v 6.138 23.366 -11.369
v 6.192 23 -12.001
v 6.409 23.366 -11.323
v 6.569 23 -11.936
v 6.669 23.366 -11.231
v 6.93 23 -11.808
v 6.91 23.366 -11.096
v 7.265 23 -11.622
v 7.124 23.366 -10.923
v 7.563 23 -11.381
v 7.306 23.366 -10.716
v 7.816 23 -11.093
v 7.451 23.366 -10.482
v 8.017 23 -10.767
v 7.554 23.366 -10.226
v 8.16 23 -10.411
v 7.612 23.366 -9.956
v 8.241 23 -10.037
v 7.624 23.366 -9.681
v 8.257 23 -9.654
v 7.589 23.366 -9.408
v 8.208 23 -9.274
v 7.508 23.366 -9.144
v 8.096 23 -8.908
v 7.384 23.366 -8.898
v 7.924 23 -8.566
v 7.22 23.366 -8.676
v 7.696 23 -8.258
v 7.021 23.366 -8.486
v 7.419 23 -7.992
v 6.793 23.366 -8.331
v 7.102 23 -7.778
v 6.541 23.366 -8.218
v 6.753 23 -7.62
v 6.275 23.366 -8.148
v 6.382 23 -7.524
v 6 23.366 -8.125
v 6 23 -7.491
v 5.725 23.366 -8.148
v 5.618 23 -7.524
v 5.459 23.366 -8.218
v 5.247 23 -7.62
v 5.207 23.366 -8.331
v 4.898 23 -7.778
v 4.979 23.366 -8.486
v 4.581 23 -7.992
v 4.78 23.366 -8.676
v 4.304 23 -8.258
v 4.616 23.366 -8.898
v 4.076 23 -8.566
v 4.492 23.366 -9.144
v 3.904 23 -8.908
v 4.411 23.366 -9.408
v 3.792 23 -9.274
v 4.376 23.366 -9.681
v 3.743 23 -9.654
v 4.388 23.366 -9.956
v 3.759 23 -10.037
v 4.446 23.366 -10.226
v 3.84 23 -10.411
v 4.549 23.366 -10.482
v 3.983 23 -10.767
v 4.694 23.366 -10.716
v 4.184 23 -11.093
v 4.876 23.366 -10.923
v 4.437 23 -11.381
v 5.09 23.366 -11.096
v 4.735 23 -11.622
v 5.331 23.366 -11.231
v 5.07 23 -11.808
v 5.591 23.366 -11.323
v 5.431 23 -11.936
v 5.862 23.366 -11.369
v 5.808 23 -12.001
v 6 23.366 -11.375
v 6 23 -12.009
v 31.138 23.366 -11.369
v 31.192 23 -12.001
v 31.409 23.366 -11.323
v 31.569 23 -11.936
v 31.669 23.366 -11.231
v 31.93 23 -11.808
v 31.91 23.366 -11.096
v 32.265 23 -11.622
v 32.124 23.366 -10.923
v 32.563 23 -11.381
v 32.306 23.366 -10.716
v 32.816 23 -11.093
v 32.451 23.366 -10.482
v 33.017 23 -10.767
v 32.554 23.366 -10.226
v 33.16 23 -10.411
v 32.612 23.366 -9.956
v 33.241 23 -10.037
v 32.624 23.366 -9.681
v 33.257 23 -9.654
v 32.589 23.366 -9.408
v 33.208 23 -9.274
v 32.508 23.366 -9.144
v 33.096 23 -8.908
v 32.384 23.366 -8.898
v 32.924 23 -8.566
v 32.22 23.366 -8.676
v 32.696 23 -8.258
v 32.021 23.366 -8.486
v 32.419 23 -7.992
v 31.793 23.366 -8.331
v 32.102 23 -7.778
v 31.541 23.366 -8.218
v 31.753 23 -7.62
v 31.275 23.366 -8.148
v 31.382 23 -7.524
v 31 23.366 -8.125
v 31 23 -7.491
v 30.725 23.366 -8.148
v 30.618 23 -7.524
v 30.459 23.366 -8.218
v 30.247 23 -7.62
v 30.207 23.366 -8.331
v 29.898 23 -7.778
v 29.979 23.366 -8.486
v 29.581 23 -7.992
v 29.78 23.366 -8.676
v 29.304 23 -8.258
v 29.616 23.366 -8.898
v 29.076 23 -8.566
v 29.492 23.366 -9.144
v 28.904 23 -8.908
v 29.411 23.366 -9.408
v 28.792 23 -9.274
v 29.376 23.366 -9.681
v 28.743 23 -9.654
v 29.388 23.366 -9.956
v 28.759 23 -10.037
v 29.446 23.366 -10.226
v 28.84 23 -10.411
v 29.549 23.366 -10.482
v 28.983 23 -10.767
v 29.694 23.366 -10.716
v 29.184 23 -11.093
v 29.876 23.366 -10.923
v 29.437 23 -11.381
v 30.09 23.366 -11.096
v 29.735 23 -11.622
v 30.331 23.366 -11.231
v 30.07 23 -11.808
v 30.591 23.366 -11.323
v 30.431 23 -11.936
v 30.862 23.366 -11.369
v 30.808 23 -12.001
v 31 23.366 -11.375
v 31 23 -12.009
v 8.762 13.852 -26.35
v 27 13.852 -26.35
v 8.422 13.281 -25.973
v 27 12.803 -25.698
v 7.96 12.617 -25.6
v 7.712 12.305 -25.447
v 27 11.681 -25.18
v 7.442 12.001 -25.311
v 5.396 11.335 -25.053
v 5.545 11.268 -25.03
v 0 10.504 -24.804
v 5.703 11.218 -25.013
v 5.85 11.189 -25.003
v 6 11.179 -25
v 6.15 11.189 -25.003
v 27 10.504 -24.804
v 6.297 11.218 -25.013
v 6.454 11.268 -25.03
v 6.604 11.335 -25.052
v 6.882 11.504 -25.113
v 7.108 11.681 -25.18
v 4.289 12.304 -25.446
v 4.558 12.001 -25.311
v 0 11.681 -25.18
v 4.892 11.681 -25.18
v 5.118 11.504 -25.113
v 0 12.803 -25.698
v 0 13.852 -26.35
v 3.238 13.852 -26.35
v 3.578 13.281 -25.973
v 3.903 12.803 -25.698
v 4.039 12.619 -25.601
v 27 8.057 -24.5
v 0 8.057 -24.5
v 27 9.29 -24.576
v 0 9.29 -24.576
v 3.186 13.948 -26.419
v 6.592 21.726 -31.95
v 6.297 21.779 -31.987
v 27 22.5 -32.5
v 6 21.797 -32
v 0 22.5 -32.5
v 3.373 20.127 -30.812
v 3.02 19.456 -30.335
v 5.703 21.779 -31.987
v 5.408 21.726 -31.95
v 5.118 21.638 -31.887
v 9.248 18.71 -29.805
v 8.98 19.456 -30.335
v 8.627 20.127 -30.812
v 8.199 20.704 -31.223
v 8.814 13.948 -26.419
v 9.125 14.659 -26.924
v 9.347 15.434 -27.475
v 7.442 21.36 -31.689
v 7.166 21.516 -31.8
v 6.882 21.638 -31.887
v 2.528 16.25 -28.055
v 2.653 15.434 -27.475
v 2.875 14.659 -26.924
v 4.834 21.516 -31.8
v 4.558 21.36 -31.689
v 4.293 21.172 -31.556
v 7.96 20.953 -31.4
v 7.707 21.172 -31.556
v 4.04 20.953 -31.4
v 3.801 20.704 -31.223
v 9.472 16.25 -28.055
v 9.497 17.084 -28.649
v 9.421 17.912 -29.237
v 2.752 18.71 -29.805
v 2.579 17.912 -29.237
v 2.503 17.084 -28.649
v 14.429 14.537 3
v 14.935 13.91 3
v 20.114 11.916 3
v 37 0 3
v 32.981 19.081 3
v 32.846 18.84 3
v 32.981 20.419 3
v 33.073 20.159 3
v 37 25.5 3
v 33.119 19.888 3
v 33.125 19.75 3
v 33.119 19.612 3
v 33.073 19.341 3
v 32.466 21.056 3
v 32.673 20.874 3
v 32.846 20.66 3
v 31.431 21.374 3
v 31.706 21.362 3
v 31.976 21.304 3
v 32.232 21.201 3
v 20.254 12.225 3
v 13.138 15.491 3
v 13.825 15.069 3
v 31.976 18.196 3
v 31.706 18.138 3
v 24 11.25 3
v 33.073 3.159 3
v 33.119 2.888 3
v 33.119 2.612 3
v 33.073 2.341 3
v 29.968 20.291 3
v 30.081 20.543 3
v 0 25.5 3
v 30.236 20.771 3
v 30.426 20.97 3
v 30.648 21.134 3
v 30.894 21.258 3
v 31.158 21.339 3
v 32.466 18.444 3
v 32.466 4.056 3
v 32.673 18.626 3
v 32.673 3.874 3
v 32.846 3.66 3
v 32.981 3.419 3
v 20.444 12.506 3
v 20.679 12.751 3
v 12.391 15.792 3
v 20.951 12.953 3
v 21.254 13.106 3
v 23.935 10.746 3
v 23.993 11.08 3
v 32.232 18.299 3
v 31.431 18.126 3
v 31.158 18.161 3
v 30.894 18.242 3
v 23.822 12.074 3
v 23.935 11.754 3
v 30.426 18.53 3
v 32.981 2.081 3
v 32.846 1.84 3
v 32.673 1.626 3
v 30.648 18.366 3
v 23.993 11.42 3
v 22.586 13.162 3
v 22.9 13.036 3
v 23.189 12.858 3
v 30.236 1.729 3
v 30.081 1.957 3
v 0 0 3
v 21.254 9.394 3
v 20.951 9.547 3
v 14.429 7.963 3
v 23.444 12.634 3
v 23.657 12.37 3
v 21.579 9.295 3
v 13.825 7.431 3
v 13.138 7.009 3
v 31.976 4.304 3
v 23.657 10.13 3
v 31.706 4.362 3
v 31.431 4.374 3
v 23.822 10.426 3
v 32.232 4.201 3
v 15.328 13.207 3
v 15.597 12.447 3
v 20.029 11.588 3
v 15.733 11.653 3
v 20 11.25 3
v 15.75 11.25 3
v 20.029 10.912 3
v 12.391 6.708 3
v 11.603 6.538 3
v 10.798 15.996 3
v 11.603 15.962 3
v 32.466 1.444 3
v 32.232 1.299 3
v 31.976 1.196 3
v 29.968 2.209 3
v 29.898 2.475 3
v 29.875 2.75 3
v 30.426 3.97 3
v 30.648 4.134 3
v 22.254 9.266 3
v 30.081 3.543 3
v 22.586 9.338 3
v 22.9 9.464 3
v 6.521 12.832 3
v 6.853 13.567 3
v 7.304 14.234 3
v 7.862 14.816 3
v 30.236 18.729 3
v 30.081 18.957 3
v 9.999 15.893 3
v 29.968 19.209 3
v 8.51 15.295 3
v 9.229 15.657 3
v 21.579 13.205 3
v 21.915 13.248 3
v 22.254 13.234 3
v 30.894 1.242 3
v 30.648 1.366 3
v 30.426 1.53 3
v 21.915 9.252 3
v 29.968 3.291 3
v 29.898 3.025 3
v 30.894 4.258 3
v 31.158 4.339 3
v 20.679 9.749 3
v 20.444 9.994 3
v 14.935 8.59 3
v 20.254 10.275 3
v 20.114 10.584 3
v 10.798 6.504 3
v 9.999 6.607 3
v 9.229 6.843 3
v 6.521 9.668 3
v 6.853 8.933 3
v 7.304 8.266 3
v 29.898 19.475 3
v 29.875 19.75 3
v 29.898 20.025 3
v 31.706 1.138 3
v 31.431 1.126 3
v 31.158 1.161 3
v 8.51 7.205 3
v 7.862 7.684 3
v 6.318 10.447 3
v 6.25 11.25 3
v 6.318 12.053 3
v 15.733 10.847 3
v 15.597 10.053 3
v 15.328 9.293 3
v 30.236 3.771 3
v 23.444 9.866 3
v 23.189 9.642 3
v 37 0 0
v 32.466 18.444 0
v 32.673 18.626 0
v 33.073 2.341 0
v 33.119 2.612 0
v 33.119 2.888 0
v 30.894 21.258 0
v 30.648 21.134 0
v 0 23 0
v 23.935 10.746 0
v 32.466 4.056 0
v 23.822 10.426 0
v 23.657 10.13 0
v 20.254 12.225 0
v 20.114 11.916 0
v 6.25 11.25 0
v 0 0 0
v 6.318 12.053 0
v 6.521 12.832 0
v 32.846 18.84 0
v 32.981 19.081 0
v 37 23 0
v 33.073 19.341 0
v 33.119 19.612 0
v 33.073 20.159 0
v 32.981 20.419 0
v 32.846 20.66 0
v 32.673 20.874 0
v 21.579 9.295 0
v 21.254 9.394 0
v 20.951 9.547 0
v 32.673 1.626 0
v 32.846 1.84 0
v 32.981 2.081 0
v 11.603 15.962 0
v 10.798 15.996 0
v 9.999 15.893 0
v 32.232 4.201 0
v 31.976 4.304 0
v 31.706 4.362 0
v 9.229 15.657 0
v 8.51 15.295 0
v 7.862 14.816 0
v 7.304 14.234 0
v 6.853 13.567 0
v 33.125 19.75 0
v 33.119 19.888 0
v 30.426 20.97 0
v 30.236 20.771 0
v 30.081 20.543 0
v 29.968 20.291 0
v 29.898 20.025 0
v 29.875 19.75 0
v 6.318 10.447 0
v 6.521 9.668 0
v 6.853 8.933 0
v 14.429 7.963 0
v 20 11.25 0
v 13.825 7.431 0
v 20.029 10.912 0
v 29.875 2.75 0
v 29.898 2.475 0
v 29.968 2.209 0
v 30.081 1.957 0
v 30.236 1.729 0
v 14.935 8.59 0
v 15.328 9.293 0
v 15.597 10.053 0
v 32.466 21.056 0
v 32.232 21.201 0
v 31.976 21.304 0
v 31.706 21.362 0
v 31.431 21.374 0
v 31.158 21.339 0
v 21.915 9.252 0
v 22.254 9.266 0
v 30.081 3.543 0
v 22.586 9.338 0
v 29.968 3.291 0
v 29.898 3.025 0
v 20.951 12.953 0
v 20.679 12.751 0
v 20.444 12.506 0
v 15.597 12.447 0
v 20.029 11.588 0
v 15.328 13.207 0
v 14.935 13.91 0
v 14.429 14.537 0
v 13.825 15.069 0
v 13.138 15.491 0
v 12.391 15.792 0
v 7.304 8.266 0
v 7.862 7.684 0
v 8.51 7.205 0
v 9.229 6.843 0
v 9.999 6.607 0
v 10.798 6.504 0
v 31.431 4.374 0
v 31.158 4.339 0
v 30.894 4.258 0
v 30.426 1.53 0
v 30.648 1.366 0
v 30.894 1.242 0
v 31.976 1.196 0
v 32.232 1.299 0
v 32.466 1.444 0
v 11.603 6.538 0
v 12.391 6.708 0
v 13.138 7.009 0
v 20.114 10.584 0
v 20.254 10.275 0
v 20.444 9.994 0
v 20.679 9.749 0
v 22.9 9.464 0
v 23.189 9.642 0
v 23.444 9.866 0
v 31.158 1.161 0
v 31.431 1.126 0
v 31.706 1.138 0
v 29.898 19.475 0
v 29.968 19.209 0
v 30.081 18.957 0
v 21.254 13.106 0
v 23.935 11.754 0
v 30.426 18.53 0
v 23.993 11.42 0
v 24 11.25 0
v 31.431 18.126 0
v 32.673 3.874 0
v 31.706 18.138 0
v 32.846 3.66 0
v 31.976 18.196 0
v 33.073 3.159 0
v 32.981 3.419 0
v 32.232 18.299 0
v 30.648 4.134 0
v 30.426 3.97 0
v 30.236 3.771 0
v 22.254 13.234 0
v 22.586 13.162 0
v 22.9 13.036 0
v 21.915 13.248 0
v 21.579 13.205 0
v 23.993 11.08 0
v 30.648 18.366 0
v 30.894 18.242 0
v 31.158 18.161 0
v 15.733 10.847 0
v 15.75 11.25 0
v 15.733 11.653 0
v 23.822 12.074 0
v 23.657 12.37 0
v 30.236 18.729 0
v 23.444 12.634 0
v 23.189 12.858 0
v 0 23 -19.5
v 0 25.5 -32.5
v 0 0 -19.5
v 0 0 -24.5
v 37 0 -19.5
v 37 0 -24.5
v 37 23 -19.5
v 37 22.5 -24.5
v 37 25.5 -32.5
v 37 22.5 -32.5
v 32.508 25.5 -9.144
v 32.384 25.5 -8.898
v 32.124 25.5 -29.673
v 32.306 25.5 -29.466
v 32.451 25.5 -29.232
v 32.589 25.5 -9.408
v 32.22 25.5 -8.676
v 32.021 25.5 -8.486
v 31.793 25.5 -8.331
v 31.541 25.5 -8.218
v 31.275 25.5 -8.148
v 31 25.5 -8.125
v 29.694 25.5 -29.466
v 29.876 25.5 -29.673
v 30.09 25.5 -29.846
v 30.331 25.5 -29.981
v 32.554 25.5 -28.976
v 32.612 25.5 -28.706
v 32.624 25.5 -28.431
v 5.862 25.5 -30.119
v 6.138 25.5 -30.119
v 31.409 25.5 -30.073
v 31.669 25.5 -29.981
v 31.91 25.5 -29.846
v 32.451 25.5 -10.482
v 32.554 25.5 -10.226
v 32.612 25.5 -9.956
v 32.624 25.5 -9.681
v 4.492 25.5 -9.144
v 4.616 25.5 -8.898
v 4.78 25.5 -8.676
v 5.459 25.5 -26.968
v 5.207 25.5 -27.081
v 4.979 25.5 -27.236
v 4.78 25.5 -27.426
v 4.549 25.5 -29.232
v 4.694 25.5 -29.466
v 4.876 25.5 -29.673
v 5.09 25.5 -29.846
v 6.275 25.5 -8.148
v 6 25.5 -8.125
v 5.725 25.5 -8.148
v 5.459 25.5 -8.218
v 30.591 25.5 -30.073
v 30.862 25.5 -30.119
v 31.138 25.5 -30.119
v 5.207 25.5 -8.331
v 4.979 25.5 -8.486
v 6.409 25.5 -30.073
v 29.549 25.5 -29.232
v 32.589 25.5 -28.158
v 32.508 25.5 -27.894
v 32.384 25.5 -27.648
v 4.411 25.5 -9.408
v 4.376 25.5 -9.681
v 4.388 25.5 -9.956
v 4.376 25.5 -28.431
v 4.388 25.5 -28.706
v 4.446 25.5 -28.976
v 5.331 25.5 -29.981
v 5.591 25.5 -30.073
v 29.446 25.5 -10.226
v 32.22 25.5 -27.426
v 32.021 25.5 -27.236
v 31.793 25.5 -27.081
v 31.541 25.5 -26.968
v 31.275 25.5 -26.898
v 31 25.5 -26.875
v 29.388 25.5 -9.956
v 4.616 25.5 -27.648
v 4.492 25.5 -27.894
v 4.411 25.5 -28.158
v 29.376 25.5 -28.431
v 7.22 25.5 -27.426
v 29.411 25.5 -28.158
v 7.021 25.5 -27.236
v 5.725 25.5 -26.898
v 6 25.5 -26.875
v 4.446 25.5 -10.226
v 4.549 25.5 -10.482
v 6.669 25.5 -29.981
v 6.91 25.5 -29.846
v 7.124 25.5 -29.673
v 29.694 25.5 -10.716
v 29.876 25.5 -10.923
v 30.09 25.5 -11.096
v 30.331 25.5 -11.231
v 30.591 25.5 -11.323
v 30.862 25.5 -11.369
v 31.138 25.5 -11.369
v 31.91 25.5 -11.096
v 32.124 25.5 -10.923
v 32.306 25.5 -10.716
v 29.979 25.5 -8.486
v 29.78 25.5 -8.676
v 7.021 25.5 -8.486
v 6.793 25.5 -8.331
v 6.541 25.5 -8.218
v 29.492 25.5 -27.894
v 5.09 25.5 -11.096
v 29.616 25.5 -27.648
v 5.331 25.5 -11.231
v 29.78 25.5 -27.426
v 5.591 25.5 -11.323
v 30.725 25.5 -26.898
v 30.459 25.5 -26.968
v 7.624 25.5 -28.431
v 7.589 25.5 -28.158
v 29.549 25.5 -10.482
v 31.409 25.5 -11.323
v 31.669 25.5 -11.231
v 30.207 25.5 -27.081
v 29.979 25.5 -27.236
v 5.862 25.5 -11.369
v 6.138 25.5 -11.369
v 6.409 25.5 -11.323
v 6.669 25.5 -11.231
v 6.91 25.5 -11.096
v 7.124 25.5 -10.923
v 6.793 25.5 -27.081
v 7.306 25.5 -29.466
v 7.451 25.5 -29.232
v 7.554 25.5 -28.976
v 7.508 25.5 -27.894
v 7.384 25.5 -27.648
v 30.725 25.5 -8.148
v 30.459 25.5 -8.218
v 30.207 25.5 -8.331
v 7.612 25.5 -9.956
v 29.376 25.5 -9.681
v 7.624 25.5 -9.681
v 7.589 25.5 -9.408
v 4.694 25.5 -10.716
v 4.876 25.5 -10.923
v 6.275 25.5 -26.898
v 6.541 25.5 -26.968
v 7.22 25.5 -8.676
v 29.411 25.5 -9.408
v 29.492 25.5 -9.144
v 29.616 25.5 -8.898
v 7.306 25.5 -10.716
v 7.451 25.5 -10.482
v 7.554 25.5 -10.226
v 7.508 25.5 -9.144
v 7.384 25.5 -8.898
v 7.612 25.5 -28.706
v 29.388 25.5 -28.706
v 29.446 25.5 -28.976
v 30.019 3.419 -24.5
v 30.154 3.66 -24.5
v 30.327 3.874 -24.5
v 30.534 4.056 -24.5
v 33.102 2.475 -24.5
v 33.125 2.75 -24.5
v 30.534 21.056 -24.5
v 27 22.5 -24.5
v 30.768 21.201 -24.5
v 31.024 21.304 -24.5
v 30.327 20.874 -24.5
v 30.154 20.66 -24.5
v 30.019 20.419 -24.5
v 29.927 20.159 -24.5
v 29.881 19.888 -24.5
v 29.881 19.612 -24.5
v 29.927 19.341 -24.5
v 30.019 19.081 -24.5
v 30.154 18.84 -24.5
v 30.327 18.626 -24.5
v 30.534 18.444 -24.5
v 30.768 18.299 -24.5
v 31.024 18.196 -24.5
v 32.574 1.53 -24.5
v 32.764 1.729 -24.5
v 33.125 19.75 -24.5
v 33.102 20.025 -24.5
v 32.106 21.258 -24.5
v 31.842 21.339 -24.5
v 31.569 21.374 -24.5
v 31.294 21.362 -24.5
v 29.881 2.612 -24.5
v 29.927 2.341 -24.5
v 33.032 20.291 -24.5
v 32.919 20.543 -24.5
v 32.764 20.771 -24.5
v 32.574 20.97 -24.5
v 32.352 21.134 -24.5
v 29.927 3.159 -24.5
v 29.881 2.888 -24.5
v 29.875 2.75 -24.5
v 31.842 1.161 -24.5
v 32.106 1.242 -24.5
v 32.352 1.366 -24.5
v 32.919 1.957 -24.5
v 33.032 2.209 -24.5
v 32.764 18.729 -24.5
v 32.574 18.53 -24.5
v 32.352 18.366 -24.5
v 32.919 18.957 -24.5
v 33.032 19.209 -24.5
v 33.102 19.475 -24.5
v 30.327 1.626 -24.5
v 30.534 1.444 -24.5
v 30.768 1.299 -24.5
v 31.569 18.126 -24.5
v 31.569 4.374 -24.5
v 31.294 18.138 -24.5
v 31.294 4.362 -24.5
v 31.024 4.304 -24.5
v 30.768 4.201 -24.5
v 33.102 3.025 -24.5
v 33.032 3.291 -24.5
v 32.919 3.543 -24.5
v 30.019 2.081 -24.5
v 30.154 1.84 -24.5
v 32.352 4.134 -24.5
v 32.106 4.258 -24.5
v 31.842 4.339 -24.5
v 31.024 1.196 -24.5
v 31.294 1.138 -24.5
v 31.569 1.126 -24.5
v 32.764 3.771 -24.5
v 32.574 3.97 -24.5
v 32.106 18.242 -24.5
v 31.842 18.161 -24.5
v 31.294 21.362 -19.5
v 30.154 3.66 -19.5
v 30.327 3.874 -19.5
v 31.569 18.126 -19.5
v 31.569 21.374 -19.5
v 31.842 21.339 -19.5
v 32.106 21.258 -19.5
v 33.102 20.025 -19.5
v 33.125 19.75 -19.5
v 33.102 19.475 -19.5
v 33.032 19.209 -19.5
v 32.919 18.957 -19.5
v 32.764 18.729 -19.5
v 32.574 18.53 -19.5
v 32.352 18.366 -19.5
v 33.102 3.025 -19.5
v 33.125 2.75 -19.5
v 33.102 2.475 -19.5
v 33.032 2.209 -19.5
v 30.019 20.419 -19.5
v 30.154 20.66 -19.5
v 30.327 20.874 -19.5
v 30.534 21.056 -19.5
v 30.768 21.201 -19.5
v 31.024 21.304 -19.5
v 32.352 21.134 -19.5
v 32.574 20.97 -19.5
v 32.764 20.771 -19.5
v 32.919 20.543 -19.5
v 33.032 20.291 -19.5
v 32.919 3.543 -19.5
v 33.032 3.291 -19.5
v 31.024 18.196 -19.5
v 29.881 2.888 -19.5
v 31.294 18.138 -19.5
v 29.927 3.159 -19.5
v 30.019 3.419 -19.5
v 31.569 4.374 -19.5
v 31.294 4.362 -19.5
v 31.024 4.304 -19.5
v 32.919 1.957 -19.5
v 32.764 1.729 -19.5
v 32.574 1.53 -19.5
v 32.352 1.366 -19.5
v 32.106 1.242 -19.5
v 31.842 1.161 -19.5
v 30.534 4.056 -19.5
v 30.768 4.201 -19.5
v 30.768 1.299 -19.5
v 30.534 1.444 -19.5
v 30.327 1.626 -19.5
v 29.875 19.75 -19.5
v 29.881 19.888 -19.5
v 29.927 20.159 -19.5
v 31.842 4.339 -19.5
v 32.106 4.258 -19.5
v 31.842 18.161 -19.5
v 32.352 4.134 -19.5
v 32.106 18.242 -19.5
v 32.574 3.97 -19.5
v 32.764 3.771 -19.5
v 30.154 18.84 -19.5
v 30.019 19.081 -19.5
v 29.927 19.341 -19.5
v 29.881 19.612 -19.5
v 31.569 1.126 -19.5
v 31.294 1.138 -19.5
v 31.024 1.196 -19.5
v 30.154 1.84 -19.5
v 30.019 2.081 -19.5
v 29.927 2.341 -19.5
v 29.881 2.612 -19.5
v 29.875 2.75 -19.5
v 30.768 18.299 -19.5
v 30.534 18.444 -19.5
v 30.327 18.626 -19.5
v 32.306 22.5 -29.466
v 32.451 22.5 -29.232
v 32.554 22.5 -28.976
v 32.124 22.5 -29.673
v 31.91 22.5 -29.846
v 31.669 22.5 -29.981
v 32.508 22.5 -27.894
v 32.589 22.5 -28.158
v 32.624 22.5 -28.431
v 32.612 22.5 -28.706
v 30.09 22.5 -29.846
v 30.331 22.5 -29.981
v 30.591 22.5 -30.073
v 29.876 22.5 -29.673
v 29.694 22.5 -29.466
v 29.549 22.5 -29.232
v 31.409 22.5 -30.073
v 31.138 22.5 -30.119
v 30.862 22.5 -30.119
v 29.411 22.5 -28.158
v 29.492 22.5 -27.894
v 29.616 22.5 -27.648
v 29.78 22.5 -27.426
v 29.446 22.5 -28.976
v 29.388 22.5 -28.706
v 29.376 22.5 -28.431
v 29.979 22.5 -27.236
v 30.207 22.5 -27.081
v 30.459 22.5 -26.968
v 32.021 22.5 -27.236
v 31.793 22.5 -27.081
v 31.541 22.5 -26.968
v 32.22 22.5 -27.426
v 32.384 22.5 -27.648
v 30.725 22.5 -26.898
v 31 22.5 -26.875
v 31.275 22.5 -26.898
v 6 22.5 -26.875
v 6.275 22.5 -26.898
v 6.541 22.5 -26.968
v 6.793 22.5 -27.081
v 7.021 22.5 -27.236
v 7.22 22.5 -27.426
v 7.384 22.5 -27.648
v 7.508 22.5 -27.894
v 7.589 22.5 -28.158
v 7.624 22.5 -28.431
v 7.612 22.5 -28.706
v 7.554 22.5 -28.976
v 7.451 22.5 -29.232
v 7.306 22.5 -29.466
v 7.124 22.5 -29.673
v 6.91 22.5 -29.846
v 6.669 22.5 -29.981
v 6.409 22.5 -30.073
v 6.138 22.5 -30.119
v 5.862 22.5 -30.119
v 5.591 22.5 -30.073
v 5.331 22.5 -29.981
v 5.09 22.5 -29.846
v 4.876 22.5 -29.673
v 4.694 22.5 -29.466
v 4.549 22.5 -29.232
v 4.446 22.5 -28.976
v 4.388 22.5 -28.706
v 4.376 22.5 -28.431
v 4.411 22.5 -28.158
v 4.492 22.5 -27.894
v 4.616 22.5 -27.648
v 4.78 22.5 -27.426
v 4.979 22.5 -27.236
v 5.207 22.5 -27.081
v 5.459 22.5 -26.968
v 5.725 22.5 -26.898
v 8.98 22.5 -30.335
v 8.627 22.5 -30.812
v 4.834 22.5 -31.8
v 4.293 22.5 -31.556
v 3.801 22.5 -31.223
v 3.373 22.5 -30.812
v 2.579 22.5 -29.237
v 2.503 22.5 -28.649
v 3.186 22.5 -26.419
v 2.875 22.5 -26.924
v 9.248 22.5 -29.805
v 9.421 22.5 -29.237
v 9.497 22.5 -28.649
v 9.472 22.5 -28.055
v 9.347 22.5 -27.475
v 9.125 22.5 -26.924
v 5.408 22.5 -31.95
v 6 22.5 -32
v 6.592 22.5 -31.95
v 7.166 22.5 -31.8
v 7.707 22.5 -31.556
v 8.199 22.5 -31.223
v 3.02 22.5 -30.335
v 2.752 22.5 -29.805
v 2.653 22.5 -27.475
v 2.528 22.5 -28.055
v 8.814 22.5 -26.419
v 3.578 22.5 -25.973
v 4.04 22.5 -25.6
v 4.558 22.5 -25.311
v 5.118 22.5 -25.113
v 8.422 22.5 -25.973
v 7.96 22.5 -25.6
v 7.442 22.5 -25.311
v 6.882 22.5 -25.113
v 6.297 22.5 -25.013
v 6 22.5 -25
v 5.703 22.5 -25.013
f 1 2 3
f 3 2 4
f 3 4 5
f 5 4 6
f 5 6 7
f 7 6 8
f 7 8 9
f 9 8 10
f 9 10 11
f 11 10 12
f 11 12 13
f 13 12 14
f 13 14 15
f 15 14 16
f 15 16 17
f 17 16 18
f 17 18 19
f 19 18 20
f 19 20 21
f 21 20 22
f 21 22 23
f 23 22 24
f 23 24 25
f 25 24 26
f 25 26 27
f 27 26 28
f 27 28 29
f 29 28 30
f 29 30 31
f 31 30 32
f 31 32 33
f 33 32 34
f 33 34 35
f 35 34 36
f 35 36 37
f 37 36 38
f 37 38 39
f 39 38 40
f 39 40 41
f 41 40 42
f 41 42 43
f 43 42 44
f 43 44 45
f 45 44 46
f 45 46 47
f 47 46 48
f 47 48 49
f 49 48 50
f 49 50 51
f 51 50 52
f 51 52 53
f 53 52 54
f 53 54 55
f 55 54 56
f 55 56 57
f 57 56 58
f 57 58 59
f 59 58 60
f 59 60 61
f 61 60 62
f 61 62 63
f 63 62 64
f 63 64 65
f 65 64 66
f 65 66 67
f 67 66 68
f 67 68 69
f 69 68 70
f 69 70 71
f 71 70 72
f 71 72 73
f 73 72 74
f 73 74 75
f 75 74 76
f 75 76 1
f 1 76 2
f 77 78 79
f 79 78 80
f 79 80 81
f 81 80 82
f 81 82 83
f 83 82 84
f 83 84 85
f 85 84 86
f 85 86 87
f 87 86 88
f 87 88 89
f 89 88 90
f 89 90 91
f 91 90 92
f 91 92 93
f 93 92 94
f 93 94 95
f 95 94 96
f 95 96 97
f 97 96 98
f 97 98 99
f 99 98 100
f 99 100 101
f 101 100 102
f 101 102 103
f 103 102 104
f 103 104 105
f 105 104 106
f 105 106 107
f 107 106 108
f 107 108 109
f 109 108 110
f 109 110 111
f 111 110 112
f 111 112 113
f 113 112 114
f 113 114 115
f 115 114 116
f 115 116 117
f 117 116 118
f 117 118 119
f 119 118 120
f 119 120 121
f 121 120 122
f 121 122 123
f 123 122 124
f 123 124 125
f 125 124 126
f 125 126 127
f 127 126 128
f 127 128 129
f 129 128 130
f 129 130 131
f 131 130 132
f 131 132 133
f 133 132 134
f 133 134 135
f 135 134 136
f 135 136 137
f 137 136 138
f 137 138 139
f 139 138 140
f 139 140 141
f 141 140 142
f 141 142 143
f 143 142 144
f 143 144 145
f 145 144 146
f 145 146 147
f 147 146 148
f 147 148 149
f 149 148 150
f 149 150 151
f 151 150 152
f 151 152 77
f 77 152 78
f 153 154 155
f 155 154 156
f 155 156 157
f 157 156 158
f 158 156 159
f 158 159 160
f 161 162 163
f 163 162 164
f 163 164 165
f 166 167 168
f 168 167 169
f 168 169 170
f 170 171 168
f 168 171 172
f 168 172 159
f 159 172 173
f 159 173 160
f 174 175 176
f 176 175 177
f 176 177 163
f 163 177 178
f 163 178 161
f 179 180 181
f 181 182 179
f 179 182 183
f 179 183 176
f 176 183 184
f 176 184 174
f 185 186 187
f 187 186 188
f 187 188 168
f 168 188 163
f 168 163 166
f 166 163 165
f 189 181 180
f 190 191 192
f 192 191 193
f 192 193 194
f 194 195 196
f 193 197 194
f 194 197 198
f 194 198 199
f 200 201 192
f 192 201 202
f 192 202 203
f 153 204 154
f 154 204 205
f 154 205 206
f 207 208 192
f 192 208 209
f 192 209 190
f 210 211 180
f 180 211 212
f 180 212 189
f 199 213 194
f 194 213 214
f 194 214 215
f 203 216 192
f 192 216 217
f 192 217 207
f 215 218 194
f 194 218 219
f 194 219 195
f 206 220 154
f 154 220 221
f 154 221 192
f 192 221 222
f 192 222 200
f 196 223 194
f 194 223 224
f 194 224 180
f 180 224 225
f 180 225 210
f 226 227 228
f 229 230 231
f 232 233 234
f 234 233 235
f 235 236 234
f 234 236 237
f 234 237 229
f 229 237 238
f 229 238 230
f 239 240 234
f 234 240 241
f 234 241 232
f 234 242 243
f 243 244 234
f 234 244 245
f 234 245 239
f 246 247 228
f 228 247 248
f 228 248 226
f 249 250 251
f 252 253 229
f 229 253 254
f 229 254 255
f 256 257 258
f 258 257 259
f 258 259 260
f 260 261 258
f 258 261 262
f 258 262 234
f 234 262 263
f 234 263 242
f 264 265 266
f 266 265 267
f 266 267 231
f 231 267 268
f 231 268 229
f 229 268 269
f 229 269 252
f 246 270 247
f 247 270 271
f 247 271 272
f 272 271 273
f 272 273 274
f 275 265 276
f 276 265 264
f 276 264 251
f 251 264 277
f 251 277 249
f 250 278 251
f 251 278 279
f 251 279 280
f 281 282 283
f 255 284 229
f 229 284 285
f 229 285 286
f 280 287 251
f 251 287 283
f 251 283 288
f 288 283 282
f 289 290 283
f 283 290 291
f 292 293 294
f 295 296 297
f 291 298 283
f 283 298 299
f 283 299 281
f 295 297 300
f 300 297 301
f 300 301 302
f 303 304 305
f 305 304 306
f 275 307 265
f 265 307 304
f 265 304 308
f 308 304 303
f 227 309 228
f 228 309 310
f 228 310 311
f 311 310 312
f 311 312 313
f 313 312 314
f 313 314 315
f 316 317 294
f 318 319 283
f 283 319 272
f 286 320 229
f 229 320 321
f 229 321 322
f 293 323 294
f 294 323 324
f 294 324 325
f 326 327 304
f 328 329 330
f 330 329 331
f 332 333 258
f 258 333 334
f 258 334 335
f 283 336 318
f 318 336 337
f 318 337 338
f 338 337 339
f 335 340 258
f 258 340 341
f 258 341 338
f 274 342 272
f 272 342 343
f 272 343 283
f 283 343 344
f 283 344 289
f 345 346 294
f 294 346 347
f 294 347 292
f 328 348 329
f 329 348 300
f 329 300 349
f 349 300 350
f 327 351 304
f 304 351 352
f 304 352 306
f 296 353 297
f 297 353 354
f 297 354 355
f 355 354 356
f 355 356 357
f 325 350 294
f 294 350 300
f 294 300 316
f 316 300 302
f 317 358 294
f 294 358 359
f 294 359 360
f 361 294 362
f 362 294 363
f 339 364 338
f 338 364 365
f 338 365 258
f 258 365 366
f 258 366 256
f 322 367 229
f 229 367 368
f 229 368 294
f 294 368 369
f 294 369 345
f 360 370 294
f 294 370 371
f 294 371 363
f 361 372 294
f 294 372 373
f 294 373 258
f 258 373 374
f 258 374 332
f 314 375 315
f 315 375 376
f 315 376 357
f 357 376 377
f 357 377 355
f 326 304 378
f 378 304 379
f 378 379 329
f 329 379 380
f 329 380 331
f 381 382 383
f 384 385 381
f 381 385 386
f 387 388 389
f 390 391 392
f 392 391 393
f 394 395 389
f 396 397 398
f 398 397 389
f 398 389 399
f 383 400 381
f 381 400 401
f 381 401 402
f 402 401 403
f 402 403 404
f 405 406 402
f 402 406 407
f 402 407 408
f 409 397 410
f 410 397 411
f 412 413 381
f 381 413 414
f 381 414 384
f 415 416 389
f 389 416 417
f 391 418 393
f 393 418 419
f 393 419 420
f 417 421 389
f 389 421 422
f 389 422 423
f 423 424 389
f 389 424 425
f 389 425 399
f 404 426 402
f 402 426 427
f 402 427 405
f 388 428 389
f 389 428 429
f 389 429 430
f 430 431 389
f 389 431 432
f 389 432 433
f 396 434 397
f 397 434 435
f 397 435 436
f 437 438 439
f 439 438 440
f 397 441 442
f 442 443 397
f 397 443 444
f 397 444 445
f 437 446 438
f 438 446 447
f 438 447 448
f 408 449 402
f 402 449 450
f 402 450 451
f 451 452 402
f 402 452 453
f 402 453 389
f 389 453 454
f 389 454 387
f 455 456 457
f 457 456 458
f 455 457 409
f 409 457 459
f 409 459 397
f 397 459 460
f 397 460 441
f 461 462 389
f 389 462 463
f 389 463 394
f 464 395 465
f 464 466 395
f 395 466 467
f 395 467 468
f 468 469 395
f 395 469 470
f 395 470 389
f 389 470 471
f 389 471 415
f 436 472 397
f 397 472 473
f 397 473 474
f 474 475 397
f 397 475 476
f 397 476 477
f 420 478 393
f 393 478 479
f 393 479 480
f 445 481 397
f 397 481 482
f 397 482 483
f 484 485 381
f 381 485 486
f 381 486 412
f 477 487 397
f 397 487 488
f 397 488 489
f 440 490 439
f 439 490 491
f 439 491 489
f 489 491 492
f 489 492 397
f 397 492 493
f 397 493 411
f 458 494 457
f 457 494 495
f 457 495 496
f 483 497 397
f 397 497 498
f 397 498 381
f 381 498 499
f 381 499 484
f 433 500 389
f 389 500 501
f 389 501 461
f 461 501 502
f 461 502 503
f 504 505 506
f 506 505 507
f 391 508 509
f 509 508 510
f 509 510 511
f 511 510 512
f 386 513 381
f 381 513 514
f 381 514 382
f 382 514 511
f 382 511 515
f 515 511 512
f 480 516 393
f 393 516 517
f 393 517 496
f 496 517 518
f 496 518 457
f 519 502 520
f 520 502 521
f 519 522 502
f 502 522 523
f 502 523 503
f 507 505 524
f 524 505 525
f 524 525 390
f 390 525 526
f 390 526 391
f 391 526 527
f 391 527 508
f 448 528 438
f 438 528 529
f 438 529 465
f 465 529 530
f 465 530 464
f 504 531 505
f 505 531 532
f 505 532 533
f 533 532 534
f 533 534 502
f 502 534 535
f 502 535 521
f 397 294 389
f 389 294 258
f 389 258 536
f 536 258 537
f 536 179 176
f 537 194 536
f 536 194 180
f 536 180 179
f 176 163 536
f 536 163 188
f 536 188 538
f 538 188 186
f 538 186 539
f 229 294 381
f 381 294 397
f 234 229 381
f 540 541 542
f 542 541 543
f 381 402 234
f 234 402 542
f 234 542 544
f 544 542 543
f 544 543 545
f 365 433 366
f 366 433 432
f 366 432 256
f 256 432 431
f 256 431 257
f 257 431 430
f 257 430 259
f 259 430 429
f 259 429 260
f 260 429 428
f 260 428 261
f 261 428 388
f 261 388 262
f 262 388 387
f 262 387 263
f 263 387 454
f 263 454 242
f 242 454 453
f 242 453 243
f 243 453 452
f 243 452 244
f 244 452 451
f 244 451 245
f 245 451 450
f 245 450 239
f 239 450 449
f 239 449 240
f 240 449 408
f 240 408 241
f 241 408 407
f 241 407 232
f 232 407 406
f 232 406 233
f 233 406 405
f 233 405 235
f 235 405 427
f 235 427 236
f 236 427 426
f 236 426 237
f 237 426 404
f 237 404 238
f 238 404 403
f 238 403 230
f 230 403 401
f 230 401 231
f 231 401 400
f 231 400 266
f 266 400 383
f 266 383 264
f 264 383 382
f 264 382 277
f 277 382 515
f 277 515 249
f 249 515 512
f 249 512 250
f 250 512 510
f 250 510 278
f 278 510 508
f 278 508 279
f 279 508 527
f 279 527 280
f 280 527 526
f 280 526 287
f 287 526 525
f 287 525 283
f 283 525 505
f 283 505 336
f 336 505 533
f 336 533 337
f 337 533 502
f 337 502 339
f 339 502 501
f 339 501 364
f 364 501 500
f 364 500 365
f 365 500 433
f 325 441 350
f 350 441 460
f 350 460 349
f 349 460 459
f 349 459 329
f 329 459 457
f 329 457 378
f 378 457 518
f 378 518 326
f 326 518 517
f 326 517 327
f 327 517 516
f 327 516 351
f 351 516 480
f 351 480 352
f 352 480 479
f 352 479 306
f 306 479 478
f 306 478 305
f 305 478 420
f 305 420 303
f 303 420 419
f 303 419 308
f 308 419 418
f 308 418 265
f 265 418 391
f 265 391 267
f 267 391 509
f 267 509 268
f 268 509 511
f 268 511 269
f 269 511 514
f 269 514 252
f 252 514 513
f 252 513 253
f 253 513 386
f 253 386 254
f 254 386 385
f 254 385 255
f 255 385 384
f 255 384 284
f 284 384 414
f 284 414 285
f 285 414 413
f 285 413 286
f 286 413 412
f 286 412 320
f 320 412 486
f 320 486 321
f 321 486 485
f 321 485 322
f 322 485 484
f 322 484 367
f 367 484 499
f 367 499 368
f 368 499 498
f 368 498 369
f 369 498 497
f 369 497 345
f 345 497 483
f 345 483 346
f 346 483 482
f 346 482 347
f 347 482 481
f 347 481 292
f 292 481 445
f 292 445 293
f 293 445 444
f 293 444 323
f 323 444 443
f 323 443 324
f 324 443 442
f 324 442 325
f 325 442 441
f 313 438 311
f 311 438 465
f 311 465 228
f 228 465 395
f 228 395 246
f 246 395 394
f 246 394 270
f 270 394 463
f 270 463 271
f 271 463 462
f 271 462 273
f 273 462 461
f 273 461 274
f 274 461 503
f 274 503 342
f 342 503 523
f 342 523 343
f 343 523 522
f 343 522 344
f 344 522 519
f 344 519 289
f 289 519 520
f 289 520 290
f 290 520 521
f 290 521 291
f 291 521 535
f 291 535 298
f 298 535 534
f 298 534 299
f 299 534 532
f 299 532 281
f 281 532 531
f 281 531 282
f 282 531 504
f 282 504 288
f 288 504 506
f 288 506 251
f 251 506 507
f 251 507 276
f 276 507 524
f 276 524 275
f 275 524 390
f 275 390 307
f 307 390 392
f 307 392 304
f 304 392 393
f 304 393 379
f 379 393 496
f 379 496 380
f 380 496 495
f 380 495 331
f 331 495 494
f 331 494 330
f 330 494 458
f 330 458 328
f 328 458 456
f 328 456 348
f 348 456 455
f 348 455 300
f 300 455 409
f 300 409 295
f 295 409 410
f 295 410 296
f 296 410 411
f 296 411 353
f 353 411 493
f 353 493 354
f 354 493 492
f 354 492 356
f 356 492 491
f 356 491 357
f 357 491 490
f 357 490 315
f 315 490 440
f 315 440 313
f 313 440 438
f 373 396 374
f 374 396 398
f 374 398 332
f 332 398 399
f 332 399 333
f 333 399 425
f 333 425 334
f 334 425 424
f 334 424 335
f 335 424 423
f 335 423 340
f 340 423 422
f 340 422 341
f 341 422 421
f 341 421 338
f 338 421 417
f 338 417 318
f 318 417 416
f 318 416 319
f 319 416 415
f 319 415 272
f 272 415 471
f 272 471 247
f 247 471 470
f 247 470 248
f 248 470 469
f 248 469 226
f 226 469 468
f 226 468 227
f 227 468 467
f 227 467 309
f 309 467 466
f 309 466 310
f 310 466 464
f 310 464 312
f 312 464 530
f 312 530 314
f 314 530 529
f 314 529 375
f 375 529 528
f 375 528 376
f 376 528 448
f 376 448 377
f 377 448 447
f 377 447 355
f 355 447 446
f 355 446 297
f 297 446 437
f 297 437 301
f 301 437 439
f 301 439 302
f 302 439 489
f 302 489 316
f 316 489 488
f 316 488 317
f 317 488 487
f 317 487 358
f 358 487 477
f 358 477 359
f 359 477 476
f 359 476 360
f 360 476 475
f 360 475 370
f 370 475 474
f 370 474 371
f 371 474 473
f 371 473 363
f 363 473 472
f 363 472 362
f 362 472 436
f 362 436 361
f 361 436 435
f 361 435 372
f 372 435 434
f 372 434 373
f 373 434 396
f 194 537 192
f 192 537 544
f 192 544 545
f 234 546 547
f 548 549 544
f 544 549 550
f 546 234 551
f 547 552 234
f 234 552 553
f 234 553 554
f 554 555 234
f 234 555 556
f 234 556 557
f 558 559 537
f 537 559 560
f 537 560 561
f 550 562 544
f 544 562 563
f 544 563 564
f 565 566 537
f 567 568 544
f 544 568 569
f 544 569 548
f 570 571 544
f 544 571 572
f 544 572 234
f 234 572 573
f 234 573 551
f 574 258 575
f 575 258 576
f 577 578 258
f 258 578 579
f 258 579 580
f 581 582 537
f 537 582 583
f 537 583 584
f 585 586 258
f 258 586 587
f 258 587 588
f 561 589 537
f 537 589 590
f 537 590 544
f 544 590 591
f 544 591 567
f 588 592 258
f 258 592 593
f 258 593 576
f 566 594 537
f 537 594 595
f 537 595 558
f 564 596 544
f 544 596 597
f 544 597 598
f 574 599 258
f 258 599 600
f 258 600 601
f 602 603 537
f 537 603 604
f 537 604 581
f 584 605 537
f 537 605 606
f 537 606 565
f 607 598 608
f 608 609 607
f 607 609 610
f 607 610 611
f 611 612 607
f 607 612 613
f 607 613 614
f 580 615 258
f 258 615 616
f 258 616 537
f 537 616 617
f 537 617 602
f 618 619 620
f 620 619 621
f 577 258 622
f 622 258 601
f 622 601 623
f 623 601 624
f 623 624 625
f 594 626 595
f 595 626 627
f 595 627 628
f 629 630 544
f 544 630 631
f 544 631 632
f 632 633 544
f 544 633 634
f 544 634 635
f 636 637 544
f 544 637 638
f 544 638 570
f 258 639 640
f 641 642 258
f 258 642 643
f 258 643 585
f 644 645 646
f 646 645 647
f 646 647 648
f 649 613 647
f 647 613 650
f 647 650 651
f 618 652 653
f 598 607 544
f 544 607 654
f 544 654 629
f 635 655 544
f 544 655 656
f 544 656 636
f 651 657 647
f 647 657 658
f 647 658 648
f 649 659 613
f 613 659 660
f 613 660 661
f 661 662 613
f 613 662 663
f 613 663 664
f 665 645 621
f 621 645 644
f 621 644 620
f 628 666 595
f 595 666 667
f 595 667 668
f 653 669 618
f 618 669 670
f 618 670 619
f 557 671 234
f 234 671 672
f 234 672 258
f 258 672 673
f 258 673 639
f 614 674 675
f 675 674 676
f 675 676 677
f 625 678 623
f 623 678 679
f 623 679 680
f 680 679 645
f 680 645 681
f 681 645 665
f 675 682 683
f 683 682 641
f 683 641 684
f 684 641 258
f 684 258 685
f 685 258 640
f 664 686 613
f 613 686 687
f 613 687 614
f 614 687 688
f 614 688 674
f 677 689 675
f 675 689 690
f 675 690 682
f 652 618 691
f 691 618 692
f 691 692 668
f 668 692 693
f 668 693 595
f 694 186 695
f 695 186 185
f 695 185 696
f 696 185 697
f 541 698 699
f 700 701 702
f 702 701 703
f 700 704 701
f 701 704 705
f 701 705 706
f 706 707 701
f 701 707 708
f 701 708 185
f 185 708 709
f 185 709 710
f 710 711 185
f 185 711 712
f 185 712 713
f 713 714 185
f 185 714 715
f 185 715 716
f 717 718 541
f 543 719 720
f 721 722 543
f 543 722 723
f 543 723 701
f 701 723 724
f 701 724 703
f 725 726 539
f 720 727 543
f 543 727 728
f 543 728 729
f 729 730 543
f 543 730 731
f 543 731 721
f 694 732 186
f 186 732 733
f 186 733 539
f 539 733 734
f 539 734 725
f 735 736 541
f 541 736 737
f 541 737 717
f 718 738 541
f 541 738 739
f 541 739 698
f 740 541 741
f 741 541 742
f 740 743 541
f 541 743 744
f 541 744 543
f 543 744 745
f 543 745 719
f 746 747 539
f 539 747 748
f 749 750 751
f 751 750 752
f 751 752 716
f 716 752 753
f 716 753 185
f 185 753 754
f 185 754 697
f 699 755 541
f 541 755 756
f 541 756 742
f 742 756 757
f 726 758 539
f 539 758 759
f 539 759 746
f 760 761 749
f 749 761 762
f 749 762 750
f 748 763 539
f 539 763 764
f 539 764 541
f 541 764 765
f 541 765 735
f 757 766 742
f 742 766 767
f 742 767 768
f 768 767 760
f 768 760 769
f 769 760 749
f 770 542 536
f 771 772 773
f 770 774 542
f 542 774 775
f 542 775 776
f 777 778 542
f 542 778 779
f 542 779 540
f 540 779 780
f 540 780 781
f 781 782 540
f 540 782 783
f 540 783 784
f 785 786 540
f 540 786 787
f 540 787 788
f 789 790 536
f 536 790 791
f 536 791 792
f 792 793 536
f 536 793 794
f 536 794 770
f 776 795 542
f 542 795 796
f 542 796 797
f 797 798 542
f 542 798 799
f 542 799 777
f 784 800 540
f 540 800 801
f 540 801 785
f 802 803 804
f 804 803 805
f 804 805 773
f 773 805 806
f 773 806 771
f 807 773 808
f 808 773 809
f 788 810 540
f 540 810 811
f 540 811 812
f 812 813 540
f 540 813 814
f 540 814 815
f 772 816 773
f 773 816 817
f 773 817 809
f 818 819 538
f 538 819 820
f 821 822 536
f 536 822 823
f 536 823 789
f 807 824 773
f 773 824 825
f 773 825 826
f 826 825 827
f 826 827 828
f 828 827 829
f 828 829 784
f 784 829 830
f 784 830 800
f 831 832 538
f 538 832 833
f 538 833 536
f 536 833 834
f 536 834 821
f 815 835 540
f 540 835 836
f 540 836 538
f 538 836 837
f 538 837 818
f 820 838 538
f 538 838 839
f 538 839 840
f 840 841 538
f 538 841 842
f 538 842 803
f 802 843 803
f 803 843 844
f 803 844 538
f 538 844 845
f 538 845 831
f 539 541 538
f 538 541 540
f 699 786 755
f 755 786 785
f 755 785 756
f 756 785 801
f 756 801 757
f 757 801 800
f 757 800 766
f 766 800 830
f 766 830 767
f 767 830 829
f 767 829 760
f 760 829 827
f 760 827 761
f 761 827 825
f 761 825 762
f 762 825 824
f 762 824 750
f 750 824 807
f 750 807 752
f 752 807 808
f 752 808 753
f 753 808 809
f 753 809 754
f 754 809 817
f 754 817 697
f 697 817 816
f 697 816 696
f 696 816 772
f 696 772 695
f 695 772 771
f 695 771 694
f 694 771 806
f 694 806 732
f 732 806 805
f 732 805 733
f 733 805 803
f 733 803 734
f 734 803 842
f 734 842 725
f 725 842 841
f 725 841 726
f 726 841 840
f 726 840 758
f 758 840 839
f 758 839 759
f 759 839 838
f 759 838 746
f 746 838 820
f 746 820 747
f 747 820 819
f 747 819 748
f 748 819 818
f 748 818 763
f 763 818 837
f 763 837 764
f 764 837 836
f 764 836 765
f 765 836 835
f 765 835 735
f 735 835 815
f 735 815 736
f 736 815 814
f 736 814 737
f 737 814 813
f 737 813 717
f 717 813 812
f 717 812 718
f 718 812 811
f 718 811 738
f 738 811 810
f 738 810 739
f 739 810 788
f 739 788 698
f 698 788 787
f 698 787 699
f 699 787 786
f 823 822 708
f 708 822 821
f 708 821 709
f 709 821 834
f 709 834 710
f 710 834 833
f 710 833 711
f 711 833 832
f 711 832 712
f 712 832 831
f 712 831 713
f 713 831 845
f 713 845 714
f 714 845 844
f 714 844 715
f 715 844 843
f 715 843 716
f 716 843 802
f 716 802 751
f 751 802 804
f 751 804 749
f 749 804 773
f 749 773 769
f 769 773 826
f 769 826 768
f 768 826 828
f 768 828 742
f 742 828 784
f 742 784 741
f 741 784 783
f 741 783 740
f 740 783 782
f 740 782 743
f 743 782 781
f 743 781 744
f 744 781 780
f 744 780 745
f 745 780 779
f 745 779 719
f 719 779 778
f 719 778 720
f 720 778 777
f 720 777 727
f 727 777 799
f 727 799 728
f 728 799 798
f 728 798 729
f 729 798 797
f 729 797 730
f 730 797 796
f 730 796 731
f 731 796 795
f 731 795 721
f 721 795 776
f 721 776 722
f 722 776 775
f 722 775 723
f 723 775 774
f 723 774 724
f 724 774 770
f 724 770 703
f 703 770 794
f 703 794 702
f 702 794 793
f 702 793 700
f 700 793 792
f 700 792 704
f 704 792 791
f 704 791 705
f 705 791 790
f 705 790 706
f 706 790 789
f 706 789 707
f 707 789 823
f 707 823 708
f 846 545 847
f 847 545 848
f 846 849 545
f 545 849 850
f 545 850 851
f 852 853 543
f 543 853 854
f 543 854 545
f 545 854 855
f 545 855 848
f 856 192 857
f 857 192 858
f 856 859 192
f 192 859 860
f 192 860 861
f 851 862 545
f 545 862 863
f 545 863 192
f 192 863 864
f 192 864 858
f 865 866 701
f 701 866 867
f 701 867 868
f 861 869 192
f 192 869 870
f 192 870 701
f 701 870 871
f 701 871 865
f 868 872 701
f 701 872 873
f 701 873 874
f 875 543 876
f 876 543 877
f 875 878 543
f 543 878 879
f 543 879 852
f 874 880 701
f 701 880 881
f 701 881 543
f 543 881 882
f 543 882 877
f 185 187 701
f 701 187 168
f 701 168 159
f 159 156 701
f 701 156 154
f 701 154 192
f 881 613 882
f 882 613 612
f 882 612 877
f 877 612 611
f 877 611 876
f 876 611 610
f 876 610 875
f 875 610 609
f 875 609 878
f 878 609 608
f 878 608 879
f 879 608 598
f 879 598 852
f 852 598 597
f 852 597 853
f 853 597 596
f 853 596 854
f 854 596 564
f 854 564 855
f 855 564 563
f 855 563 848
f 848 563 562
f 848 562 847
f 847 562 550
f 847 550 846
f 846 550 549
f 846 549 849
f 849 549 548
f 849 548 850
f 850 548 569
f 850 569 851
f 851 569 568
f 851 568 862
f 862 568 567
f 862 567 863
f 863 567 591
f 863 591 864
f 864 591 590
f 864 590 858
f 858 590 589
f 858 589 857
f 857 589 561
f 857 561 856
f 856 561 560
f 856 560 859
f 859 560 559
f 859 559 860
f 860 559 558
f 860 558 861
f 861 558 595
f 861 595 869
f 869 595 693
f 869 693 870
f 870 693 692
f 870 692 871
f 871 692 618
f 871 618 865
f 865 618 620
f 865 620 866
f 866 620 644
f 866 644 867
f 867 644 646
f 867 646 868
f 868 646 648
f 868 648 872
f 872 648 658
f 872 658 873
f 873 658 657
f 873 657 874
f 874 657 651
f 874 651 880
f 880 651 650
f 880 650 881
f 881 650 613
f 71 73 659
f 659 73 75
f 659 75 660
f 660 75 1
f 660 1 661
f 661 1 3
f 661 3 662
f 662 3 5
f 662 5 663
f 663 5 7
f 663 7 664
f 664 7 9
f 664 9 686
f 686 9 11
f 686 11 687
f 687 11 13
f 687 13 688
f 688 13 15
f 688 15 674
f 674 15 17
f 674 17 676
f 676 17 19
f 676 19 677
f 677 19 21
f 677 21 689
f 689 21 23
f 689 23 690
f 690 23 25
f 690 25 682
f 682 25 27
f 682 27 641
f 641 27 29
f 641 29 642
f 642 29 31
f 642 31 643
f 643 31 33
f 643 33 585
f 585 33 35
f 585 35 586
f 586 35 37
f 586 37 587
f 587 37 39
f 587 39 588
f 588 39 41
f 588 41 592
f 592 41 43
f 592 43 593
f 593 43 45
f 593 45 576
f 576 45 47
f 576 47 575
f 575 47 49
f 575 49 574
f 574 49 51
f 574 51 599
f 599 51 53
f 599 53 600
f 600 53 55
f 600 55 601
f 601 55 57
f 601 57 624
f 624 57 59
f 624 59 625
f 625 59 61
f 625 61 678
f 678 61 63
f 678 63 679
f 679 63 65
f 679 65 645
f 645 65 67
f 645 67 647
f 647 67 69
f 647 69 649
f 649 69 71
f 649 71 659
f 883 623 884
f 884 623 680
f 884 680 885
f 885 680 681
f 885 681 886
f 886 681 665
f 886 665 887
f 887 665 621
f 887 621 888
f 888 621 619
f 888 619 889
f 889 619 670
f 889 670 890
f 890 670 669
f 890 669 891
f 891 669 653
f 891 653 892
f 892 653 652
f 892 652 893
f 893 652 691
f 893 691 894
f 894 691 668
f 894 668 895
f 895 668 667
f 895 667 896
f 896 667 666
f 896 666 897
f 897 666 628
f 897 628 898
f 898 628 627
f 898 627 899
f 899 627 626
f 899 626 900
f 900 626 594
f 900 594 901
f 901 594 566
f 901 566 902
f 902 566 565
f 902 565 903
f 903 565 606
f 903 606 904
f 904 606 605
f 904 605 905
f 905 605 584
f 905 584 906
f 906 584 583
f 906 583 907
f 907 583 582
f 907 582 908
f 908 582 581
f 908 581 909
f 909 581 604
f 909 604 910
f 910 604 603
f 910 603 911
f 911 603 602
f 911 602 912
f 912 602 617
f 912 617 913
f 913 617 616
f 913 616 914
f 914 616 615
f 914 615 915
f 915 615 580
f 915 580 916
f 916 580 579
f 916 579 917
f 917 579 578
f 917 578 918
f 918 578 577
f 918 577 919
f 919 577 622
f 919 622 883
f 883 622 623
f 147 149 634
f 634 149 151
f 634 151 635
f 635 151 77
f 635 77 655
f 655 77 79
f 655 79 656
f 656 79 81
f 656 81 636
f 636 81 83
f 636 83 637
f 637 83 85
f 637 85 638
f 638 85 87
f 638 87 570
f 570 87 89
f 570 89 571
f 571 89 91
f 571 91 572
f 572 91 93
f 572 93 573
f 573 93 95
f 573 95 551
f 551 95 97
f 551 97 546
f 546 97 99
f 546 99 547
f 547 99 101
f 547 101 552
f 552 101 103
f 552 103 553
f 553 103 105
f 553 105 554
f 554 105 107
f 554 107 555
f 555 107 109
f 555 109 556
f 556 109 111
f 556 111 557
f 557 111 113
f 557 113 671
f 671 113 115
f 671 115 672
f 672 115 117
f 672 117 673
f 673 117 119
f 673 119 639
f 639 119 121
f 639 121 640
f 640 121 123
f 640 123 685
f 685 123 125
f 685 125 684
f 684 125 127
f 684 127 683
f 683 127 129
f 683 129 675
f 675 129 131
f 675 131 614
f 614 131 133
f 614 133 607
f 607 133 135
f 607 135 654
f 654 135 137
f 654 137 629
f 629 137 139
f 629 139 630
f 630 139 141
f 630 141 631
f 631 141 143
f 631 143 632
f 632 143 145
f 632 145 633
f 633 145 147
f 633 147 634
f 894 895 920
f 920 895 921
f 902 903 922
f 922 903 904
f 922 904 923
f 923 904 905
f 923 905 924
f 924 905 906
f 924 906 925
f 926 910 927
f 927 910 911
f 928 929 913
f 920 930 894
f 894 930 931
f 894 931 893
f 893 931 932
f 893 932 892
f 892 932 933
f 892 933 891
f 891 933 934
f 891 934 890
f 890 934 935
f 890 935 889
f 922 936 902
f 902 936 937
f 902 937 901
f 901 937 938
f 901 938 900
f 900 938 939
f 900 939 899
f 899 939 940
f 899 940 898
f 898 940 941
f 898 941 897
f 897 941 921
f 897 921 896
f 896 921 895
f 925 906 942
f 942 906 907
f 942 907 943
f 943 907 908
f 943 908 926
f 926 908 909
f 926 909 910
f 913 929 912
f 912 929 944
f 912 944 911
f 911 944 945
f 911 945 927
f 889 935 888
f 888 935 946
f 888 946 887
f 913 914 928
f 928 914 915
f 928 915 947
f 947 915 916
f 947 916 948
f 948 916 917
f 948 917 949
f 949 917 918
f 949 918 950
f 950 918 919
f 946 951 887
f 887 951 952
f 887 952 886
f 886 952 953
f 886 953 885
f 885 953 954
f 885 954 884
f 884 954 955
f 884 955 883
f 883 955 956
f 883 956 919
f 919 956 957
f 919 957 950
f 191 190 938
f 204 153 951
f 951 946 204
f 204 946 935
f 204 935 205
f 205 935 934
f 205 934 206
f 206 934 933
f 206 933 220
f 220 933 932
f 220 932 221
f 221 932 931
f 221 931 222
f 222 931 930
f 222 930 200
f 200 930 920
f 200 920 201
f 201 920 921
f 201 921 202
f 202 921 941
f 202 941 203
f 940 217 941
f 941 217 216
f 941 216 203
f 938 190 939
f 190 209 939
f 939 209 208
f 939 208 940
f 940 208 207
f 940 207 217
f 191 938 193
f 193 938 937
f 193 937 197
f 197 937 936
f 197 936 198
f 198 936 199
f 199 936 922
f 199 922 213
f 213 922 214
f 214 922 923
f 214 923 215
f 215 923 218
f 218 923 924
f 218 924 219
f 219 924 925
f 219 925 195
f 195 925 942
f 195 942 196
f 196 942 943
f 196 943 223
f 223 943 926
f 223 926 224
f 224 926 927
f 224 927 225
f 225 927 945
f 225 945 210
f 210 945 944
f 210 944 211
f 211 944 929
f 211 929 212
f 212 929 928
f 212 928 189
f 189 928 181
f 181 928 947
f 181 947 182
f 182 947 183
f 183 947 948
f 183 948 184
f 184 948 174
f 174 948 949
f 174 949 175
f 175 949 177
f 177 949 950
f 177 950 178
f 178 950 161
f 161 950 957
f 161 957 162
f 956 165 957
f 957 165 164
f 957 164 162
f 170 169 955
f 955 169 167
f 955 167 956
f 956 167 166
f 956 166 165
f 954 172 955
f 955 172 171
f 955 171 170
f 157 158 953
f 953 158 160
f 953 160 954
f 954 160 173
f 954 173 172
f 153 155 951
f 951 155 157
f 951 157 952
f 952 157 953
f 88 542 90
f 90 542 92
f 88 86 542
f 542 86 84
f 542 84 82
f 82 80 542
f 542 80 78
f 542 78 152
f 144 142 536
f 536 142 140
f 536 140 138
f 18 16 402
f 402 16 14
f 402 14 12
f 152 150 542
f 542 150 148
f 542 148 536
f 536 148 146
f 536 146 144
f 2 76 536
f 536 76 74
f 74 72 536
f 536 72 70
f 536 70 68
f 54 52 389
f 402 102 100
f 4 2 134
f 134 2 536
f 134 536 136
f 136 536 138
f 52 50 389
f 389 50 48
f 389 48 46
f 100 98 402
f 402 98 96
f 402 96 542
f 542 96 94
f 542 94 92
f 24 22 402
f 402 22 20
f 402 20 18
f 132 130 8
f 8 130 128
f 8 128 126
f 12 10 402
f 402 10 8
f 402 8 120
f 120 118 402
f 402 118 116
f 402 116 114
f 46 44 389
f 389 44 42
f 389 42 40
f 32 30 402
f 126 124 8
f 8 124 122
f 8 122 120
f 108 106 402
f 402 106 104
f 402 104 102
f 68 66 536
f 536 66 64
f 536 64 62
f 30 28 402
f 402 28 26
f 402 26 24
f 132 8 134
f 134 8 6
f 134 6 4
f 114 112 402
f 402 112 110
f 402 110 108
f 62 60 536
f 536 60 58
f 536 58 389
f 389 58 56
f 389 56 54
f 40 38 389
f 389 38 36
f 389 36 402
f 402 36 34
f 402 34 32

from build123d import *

# Parameters (mm, degrees)
BOSS_EXTRUDE1_OUTLINE_W   = 37
BOSS_EXTRUDE1_OUTLINE_H   = 22.5
BOSS_EXTRUDE1_OUTLINE_R   = 1.625
BOSS_EXTRUDE1_OUTLINE_R_2 = 4.75
BOSS_EXTRUDE1_OUTLINE_R_3 = 2
BOSS_EXTRUDE1_DEPTH       = 3
SKETCH2_W                 = 37
SKETCH2_H                 = 22.5
SKETCH2_R                 = 1.625
BOSS_EXTRUDE2_DEPTH       = 5
SKETCH3_W                 = 37
SKETCH3_H                 = 35.5
BOSS_EXTRUDE3_DEPTH       = 3
BOSS_EXTRUDE4_DEPTH       = 37
CUT_EXTRUDE1_DEPTH        = 10
CUT_EXTRUDE2_REACH        = 57.457
SKETCH7_R                 = 1.625
CHAMFER1_SIZE             = 1.5
CHAMFER1_SIZE2            = 0.866025404
FILLET1_R                 = 10
SKETCH8_R                 = 3.5
CUT_EXTRUDE3_DEPTH        = 22.5
SKETCH9_W                 = 37
SKETCH9_H                 = 19.5
CUT_EXTRUDE4_DEPTH        = 0.5


# Read off the part's stored shape, not the designer's step: Boss-Extrude1
with BuildPart() as part:
    # Boss-Extrude1 outline → Boss-Extrude1 (new body)
    with BuildSketch(Plane.XY):
        with Locations((18.5, 11.25)):
            Rectangle(BOSS_EXTRUDE1_OUTLINE_W, BOSS_EXTRUDE1_OUTLINE_H)
        with Locations((31.5, 2.75)):
            Circle(BOSS_EXTRUDE1_OUTLINE_R, mode=Mode.SUBTRACT)
        with Locations((11, 11.25)):
            Circle(BOSS_EXTRUDE1_OUTLINE_R_2, mode=Mode.SUBTRACT)
        with Locations((22, 11.25)):
            Circle(BOSS_EXTRUDE1_OUTLINE_R_3, mode=Mode.SUBTRACT)
        with Locations((31.5, 19.75)):
            Circle(BOSS_EXTRUDE1_OUTLINE_R, mode=Mode.SUBTRACT)
    extrude(amount=BOSS_EXTRUDE1_DEPTH)



with BuildPart() as body_2:
    # Sketch2 → Boss-Extrude2 (new body)
    with BuildSketch(Plane(origin=(0, 0, -19.5), x_dir=(-1, 0, 0), z_dir=(0, 0, -1))):
        with Locations((-18.5, 11.25)):
            Rectangle(SKETCH2_W, SKETCH2_H)
        with Locations((-31.5, 2.75)):
            Circle(SKETCH2_R, mode=Mode.SUBTRACT)
        with Locations(Location((-31.5, 19.75, 0), (0, 0, 180))):
            Circle(SKETCH2_R, mode=Mode.SUBTRACT)
    extrude(amount=BOSS_EXTRUDE2_DEPTH)


with BuildPart() as part_1:
    add(part.part)

    add(body_2.part)  # Boss-Extrude3 merges body 2
    # Sketch3 → Boss-Extrude3 (add)
    with BuildSketch(Plane.XZ.offset(-22.5)):
        with Locations((18.5, -14.75)):
            Rectangle(SKETCH3_W, SKETCH3_H)
    extrude(amount=-BOSS_EXTRUDE3_DEPTH)

    # Sketch6 → Boss-Extrude4 (add)
    with BuildSketch(Plane(origin=(37, 0, 0), x_dir=(0, 0, -1), z_dir=(1, 0, 0))):
        Polygon((32.5, 22.5), (24.5, 11.25), (24.5, 22.5), align=None)
    extrude(amount=-BOSS_EXTRUDE4_DEPTH)

    # Sketch6<2> → Cut-Extrude1 (cut)
    with BuildSketch(Plane(origin=(37, 0, 0), x_dir=(0, 0, -1), z_dir=(1, 0, 0))):
        Polygon((32.5, 22.5), (24.5, 11.25), (24.5, 22.5), align=None)
    extrude(amount=-CUT_EXTRUDE1_DEPTH, mode=Mode.SUBTRACT)

    # Sketch7 → Cut-Extrude2 (cut, up to next)
    with BuildSketch(Plane(origin=(0, 25.5, 0), x_dir=(-1, 0, 0), z_dir=(0, 1, 0)), mode=Mode.PRIVATE) as cut_extrude2_sk1:
        with Locations(Location((-6, -9.75, 0), (0, 0, 90))):
            Circle(SKETCH7_R)
    cut_extrude2_tool1 = extrude(cut_extrude2_sk1.sketch, amount=-CUT_EXTRUDE2_REACH, mode=Mode.PRIVATE) & part_1.part
    # Sketch7 → Cut-Extrude2 (cut, up to next)
    with BuildSketch(Plane(origin=(0, 25.5, 0), x_dir=(-1, 0, 0), z_dir=(0, 1, 0)), mode=Mode.PRIVATE) as cut_extrude2_sk2:
        with Locations(Location((-31, -9.75, 0), (0, 0, 90))):
            Circle(SKETCH7_R)
    cut_extrude2_tool2 = extrude(cut_extrude2_sk2.sketch, amount=-CUT_EXTRUDE2_REACH, mode=Mode.PRIVATE) & part_1.part
    # Sketch7 → Cut-Extrude2 (cut, up to next)
    with BuildSketch(Plane(origin=(0, 25.5, 0), x_dir=(-1, 0, 0), z_dir=(0, 1, 0)), mode=Mode.PRIVATE) as cut_extrude2_sk3:
        with Locations(Location((-6, -28.5, 0), (0, 0, 90))):
            Circle(SKETCH7_R)
    cut_extrude2_tool3 = extrude(cut_extrude2_sk3.sketch, amount=-CUT_EXTRUDE2_REACH, mode=Mode.PRIVATE) & part_1.part
    # Sketch7 → Cut-Extrude2 (cut, up to next)
    with BuildSketch(Plane(origin=(0, 25.5, 0), x_dir=(-1, 0, 0), z_dir=(0, 1, 0)), mode=Mode.PRIVATE) as cut_extrude2_sk4:
        with Locations(Location((-31, -28.5, 0), (0, 0, 90))):
            Circle(SKETCH7_R)
    cut_extrude2_tool4 = extrude(cut_extrude2_sk4.sketch, amount=-CUT_EXTRUDE2_REACH, mode=Mode.PRIVATE) & part_1.part
    add(cut_extrude2_tool1.solids().sort_by_distance((6, 25.5, -9.75))[0], mode=Mode.SUBTRACT)
    add(cut_extrude2_tool2.solids().sort_by_distance((31, 25.5, -9.75))[0], mode=Mode.SUBTRACT)
    add(cut_extrude2_tool3.solids().sort_by_distance((6, 25.5, -28.5))[0], mode=Mode.SUBTRACT)
    add(cut_extrude2_tool4.solids().sort_by_distance((31, 25.5, -28.5))[0], mode=Mode.SUBTRACT)

    # Chamfer1
    chamfer1_edges = [part_1.edges().sort_by_distance(p)[0] for p in [
        (31, 22.5, -11.375),
        (6, 22.5, -11.375),
    ]]
    chamfer1_side = [part_1.faces().sort_by_distance(p)[0] for p in [
        (18.5, 22.5, -9.75),
    ]]
    chamfer(chamfer1_edges, length=CHAMFER1_SIZE, length2=CHAMFER1_SIZE2, reference=chamfer1_side[0])

    # Fillet1
    fillet1_edges = [part_1.edges().sort_by_distance(p)[0] for p in [
        (13.5, 11.25, -24.5),
    ]]
    fillet(fillet1_edges, radius=FILLET1_R)

    # Sketch8 → Cut-Extrude3 (cut)
    with BuildSketch(Plane(origin=(0, 0, 0), x_dir=(1, 0, 0), z_dir=(0, 1, 0))):
        with Locations(Location((6, 28.5, 0), (0, 0, 322.109230385))):
            Circle(SKETCH8_R)
    extrude(amount=CUT_EXTRUDE3_DEPTH, mode=Mode.SUBTRACT)

    # Sketch9 → Cut-Extrude4 (cut)
    with BuildSketch(Plane(origin=(0, 22.5, 0), x_dir=(-1, 0, 0), z_dir=(0, -1, 0))):
        with Locations((-18.5, 9.75)):
            Rectangle(SKETCH9_W, SKETCH9_H)
    extrude(amount=-CUT_EXTRUDE4_DEPTH, mode=Mode.SUBTRACT)


solid = part_1.part
